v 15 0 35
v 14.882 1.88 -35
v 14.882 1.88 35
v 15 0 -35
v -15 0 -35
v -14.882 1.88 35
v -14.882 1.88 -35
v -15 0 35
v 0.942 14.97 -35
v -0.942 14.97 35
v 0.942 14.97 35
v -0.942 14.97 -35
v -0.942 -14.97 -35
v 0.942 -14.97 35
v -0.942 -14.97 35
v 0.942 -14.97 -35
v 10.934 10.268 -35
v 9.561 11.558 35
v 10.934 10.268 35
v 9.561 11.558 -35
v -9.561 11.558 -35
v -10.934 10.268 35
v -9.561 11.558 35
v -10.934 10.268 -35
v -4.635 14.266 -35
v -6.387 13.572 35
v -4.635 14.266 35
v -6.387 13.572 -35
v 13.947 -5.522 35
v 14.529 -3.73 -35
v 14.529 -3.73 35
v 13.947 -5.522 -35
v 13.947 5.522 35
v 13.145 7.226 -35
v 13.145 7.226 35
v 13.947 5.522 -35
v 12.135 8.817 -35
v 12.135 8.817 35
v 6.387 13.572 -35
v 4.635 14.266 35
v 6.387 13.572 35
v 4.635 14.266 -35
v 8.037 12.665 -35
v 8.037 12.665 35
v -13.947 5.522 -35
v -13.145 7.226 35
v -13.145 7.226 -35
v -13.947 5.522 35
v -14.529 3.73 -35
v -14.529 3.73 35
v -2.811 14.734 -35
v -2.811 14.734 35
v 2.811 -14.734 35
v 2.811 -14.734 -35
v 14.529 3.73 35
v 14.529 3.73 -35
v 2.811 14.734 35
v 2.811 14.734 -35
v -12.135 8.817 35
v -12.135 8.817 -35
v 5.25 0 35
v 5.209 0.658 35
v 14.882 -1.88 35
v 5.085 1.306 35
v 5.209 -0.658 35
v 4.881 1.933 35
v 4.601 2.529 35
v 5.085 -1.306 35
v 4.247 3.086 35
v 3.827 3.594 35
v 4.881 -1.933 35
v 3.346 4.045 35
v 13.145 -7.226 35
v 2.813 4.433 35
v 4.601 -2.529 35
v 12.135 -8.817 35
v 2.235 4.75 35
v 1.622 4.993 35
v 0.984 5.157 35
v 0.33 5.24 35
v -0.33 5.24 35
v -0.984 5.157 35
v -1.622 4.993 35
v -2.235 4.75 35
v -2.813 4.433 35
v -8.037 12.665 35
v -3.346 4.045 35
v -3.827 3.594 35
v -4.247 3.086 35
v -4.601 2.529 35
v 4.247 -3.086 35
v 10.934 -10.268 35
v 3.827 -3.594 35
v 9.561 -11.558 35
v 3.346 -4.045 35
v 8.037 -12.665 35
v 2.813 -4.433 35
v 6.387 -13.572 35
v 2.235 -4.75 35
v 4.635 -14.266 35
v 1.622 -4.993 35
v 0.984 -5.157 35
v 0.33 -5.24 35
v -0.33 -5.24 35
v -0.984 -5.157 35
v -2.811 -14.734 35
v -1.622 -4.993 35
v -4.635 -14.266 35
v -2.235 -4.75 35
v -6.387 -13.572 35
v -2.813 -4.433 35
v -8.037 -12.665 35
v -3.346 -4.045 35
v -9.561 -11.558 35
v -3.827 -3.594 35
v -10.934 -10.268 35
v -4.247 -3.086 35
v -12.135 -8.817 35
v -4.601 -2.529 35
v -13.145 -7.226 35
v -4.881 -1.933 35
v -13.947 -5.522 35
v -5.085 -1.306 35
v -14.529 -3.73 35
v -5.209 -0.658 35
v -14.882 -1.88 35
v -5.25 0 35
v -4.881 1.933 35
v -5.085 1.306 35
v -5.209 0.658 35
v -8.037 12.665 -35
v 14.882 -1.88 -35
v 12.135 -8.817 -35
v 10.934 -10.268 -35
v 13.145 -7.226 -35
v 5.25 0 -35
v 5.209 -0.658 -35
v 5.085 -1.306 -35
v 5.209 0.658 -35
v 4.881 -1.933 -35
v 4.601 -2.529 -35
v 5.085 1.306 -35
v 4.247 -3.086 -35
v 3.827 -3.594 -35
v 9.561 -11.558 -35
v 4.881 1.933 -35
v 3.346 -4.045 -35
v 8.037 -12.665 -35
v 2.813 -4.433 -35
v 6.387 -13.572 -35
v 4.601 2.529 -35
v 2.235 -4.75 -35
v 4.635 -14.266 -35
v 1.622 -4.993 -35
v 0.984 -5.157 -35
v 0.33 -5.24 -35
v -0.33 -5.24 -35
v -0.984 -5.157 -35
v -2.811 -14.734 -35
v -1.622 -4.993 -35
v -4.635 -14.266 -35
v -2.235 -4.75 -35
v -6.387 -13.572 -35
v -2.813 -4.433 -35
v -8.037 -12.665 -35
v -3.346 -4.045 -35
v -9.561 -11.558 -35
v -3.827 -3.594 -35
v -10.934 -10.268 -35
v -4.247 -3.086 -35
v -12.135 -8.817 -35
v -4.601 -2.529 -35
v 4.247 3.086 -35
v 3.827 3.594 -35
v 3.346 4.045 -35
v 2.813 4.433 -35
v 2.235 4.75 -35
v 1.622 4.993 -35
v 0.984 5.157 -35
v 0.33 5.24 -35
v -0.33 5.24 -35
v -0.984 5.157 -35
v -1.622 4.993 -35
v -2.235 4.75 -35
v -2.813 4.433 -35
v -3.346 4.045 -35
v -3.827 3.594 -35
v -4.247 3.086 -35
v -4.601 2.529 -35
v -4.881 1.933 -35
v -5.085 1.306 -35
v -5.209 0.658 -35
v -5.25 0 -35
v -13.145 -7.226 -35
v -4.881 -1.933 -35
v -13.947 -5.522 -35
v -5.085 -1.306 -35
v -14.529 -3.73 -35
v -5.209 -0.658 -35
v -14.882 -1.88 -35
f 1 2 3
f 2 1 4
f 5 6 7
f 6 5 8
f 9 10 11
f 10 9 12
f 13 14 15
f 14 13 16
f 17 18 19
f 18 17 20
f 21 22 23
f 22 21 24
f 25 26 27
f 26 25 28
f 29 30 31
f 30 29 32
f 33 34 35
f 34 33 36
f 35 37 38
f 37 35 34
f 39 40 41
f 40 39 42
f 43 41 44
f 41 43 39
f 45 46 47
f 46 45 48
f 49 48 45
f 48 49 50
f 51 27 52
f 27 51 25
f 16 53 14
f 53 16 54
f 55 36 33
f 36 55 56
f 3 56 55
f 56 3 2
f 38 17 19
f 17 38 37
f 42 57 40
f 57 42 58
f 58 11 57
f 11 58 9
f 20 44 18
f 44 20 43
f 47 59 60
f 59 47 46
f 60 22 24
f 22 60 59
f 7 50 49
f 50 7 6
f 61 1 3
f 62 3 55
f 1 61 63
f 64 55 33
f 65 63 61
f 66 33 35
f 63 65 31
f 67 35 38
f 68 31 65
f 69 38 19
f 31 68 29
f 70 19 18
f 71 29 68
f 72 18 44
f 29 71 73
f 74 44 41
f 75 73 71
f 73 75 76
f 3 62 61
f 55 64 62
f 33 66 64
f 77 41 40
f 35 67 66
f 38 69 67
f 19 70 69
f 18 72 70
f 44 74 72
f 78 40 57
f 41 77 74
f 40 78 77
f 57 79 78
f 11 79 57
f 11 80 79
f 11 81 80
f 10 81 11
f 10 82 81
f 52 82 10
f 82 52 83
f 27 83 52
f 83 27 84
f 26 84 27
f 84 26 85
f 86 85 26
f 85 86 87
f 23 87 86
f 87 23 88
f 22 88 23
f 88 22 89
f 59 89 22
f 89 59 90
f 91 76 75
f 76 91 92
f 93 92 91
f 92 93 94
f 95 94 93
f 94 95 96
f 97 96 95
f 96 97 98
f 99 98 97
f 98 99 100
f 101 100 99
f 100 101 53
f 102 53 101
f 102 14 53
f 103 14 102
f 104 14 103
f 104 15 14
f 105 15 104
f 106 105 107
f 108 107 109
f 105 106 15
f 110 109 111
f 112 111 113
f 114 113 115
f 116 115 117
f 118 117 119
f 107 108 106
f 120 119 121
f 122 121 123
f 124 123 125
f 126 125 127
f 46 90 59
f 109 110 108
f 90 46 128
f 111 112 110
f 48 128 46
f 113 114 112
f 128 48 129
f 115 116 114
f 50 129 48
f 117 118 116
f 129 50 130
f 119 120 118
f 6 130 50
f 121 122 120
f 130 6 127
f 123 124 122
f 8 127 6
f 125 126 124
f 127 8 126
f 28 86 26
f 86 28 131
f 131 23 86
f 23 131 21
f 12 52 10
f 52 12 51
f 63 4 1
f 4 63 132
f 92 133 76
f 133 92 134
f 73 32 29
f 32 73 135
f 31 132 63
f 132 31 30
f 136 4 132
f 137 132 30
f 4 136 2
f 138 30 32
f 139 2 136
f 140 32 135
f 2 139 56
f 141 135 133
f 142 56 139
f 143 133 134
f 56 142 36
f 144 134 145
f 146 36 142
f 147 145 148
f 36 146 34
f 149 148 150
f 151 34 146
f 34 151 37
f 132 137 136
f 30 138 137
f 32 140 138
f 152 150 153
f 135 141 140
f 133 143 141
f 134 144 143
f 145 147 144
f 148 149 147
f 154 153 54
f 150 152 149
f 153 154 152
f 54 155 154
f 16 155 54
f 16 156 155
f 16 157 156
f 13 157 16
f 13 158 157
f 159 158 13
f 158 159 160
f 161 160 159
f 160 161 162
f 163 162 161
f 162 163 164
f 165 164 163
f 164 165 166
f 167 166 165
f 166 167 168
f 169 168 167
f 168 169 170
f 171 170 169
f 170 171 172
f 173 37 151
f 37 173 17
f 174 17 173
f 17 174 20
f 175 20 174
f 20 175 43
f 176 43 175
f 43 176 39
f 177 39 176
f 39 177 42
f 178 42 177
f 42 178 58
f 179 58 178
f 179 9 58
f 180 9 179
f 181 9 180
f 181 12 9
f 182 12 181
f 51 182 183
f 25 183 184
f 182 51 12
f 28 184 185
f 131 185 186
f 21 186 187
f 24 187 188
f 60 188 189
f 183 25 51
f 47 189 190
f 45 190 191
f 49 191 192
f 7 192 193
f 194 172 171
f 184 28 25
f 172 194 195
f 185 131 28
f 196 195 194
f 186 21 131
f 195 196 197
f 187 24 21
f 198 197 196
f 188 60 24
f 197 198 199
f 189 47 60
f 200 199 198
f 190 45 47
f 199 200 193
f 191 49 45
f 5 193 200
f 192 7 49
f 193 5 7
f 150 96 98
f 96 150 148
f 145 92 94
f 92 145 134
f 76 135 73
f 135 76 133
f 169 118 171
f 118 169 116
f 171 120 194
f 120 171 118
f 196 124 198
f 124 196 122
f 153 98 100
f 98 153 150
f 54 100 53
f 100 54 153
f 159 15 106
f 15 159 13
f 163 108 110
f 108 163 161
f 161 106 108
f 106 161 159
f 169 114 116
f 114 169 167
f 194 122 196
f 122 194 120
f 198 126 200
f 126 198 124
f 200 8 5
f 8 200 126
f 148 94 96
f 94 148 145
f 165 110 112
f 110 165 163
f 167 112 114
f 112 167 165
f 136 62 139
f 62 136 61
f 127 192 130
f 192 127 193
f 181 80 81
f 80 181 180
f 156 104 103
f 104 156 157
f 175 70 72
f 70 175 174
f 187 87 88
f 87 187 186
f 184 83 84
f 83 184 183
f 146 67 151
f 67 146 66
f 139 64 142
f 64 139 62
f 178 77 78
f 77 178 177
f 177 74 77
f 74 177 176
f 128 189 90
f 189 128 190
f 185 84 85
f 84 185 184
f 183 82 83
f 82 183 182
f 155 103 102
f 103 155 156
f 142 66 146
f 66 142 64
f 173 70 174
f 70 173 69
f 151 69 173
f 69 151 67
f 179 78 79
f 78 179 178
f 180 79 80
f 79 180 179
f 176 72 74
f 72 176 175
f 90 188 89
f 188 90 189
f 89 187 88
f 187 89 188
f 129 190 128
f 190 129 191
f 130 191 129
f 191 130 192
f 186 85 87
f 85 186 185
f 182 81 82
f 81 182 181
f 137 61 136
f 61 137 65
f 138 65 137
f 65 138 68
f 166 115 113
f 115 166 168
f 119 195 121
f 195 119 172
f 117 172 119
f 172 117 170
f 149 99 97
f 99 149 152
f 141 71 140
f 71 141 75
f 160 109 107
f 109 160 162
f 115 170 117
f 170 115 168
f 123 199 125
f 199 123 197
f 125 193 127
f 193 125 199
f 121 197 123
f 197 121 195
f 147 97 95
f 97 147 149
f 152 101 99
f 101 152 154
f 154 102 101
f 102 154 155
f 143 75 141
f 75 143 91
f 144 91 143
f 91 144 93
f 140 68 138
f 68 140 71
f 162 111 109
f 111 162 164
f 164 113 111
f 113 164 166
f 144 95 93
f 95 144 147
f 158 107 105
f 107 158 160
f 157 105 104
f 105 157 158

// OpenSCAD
$fn = 50;


difference() {
	union() {
		translate(v = [0, 0, -35.0000000000]) {
			cylinder(h = 70, r = 15.0000000000);
		}
	}
	union() {
		translate(v = [0, 0, -100.0000000000]) {
			cylinder(h = 200, r = 5.2500000000);
		}
	}
}
